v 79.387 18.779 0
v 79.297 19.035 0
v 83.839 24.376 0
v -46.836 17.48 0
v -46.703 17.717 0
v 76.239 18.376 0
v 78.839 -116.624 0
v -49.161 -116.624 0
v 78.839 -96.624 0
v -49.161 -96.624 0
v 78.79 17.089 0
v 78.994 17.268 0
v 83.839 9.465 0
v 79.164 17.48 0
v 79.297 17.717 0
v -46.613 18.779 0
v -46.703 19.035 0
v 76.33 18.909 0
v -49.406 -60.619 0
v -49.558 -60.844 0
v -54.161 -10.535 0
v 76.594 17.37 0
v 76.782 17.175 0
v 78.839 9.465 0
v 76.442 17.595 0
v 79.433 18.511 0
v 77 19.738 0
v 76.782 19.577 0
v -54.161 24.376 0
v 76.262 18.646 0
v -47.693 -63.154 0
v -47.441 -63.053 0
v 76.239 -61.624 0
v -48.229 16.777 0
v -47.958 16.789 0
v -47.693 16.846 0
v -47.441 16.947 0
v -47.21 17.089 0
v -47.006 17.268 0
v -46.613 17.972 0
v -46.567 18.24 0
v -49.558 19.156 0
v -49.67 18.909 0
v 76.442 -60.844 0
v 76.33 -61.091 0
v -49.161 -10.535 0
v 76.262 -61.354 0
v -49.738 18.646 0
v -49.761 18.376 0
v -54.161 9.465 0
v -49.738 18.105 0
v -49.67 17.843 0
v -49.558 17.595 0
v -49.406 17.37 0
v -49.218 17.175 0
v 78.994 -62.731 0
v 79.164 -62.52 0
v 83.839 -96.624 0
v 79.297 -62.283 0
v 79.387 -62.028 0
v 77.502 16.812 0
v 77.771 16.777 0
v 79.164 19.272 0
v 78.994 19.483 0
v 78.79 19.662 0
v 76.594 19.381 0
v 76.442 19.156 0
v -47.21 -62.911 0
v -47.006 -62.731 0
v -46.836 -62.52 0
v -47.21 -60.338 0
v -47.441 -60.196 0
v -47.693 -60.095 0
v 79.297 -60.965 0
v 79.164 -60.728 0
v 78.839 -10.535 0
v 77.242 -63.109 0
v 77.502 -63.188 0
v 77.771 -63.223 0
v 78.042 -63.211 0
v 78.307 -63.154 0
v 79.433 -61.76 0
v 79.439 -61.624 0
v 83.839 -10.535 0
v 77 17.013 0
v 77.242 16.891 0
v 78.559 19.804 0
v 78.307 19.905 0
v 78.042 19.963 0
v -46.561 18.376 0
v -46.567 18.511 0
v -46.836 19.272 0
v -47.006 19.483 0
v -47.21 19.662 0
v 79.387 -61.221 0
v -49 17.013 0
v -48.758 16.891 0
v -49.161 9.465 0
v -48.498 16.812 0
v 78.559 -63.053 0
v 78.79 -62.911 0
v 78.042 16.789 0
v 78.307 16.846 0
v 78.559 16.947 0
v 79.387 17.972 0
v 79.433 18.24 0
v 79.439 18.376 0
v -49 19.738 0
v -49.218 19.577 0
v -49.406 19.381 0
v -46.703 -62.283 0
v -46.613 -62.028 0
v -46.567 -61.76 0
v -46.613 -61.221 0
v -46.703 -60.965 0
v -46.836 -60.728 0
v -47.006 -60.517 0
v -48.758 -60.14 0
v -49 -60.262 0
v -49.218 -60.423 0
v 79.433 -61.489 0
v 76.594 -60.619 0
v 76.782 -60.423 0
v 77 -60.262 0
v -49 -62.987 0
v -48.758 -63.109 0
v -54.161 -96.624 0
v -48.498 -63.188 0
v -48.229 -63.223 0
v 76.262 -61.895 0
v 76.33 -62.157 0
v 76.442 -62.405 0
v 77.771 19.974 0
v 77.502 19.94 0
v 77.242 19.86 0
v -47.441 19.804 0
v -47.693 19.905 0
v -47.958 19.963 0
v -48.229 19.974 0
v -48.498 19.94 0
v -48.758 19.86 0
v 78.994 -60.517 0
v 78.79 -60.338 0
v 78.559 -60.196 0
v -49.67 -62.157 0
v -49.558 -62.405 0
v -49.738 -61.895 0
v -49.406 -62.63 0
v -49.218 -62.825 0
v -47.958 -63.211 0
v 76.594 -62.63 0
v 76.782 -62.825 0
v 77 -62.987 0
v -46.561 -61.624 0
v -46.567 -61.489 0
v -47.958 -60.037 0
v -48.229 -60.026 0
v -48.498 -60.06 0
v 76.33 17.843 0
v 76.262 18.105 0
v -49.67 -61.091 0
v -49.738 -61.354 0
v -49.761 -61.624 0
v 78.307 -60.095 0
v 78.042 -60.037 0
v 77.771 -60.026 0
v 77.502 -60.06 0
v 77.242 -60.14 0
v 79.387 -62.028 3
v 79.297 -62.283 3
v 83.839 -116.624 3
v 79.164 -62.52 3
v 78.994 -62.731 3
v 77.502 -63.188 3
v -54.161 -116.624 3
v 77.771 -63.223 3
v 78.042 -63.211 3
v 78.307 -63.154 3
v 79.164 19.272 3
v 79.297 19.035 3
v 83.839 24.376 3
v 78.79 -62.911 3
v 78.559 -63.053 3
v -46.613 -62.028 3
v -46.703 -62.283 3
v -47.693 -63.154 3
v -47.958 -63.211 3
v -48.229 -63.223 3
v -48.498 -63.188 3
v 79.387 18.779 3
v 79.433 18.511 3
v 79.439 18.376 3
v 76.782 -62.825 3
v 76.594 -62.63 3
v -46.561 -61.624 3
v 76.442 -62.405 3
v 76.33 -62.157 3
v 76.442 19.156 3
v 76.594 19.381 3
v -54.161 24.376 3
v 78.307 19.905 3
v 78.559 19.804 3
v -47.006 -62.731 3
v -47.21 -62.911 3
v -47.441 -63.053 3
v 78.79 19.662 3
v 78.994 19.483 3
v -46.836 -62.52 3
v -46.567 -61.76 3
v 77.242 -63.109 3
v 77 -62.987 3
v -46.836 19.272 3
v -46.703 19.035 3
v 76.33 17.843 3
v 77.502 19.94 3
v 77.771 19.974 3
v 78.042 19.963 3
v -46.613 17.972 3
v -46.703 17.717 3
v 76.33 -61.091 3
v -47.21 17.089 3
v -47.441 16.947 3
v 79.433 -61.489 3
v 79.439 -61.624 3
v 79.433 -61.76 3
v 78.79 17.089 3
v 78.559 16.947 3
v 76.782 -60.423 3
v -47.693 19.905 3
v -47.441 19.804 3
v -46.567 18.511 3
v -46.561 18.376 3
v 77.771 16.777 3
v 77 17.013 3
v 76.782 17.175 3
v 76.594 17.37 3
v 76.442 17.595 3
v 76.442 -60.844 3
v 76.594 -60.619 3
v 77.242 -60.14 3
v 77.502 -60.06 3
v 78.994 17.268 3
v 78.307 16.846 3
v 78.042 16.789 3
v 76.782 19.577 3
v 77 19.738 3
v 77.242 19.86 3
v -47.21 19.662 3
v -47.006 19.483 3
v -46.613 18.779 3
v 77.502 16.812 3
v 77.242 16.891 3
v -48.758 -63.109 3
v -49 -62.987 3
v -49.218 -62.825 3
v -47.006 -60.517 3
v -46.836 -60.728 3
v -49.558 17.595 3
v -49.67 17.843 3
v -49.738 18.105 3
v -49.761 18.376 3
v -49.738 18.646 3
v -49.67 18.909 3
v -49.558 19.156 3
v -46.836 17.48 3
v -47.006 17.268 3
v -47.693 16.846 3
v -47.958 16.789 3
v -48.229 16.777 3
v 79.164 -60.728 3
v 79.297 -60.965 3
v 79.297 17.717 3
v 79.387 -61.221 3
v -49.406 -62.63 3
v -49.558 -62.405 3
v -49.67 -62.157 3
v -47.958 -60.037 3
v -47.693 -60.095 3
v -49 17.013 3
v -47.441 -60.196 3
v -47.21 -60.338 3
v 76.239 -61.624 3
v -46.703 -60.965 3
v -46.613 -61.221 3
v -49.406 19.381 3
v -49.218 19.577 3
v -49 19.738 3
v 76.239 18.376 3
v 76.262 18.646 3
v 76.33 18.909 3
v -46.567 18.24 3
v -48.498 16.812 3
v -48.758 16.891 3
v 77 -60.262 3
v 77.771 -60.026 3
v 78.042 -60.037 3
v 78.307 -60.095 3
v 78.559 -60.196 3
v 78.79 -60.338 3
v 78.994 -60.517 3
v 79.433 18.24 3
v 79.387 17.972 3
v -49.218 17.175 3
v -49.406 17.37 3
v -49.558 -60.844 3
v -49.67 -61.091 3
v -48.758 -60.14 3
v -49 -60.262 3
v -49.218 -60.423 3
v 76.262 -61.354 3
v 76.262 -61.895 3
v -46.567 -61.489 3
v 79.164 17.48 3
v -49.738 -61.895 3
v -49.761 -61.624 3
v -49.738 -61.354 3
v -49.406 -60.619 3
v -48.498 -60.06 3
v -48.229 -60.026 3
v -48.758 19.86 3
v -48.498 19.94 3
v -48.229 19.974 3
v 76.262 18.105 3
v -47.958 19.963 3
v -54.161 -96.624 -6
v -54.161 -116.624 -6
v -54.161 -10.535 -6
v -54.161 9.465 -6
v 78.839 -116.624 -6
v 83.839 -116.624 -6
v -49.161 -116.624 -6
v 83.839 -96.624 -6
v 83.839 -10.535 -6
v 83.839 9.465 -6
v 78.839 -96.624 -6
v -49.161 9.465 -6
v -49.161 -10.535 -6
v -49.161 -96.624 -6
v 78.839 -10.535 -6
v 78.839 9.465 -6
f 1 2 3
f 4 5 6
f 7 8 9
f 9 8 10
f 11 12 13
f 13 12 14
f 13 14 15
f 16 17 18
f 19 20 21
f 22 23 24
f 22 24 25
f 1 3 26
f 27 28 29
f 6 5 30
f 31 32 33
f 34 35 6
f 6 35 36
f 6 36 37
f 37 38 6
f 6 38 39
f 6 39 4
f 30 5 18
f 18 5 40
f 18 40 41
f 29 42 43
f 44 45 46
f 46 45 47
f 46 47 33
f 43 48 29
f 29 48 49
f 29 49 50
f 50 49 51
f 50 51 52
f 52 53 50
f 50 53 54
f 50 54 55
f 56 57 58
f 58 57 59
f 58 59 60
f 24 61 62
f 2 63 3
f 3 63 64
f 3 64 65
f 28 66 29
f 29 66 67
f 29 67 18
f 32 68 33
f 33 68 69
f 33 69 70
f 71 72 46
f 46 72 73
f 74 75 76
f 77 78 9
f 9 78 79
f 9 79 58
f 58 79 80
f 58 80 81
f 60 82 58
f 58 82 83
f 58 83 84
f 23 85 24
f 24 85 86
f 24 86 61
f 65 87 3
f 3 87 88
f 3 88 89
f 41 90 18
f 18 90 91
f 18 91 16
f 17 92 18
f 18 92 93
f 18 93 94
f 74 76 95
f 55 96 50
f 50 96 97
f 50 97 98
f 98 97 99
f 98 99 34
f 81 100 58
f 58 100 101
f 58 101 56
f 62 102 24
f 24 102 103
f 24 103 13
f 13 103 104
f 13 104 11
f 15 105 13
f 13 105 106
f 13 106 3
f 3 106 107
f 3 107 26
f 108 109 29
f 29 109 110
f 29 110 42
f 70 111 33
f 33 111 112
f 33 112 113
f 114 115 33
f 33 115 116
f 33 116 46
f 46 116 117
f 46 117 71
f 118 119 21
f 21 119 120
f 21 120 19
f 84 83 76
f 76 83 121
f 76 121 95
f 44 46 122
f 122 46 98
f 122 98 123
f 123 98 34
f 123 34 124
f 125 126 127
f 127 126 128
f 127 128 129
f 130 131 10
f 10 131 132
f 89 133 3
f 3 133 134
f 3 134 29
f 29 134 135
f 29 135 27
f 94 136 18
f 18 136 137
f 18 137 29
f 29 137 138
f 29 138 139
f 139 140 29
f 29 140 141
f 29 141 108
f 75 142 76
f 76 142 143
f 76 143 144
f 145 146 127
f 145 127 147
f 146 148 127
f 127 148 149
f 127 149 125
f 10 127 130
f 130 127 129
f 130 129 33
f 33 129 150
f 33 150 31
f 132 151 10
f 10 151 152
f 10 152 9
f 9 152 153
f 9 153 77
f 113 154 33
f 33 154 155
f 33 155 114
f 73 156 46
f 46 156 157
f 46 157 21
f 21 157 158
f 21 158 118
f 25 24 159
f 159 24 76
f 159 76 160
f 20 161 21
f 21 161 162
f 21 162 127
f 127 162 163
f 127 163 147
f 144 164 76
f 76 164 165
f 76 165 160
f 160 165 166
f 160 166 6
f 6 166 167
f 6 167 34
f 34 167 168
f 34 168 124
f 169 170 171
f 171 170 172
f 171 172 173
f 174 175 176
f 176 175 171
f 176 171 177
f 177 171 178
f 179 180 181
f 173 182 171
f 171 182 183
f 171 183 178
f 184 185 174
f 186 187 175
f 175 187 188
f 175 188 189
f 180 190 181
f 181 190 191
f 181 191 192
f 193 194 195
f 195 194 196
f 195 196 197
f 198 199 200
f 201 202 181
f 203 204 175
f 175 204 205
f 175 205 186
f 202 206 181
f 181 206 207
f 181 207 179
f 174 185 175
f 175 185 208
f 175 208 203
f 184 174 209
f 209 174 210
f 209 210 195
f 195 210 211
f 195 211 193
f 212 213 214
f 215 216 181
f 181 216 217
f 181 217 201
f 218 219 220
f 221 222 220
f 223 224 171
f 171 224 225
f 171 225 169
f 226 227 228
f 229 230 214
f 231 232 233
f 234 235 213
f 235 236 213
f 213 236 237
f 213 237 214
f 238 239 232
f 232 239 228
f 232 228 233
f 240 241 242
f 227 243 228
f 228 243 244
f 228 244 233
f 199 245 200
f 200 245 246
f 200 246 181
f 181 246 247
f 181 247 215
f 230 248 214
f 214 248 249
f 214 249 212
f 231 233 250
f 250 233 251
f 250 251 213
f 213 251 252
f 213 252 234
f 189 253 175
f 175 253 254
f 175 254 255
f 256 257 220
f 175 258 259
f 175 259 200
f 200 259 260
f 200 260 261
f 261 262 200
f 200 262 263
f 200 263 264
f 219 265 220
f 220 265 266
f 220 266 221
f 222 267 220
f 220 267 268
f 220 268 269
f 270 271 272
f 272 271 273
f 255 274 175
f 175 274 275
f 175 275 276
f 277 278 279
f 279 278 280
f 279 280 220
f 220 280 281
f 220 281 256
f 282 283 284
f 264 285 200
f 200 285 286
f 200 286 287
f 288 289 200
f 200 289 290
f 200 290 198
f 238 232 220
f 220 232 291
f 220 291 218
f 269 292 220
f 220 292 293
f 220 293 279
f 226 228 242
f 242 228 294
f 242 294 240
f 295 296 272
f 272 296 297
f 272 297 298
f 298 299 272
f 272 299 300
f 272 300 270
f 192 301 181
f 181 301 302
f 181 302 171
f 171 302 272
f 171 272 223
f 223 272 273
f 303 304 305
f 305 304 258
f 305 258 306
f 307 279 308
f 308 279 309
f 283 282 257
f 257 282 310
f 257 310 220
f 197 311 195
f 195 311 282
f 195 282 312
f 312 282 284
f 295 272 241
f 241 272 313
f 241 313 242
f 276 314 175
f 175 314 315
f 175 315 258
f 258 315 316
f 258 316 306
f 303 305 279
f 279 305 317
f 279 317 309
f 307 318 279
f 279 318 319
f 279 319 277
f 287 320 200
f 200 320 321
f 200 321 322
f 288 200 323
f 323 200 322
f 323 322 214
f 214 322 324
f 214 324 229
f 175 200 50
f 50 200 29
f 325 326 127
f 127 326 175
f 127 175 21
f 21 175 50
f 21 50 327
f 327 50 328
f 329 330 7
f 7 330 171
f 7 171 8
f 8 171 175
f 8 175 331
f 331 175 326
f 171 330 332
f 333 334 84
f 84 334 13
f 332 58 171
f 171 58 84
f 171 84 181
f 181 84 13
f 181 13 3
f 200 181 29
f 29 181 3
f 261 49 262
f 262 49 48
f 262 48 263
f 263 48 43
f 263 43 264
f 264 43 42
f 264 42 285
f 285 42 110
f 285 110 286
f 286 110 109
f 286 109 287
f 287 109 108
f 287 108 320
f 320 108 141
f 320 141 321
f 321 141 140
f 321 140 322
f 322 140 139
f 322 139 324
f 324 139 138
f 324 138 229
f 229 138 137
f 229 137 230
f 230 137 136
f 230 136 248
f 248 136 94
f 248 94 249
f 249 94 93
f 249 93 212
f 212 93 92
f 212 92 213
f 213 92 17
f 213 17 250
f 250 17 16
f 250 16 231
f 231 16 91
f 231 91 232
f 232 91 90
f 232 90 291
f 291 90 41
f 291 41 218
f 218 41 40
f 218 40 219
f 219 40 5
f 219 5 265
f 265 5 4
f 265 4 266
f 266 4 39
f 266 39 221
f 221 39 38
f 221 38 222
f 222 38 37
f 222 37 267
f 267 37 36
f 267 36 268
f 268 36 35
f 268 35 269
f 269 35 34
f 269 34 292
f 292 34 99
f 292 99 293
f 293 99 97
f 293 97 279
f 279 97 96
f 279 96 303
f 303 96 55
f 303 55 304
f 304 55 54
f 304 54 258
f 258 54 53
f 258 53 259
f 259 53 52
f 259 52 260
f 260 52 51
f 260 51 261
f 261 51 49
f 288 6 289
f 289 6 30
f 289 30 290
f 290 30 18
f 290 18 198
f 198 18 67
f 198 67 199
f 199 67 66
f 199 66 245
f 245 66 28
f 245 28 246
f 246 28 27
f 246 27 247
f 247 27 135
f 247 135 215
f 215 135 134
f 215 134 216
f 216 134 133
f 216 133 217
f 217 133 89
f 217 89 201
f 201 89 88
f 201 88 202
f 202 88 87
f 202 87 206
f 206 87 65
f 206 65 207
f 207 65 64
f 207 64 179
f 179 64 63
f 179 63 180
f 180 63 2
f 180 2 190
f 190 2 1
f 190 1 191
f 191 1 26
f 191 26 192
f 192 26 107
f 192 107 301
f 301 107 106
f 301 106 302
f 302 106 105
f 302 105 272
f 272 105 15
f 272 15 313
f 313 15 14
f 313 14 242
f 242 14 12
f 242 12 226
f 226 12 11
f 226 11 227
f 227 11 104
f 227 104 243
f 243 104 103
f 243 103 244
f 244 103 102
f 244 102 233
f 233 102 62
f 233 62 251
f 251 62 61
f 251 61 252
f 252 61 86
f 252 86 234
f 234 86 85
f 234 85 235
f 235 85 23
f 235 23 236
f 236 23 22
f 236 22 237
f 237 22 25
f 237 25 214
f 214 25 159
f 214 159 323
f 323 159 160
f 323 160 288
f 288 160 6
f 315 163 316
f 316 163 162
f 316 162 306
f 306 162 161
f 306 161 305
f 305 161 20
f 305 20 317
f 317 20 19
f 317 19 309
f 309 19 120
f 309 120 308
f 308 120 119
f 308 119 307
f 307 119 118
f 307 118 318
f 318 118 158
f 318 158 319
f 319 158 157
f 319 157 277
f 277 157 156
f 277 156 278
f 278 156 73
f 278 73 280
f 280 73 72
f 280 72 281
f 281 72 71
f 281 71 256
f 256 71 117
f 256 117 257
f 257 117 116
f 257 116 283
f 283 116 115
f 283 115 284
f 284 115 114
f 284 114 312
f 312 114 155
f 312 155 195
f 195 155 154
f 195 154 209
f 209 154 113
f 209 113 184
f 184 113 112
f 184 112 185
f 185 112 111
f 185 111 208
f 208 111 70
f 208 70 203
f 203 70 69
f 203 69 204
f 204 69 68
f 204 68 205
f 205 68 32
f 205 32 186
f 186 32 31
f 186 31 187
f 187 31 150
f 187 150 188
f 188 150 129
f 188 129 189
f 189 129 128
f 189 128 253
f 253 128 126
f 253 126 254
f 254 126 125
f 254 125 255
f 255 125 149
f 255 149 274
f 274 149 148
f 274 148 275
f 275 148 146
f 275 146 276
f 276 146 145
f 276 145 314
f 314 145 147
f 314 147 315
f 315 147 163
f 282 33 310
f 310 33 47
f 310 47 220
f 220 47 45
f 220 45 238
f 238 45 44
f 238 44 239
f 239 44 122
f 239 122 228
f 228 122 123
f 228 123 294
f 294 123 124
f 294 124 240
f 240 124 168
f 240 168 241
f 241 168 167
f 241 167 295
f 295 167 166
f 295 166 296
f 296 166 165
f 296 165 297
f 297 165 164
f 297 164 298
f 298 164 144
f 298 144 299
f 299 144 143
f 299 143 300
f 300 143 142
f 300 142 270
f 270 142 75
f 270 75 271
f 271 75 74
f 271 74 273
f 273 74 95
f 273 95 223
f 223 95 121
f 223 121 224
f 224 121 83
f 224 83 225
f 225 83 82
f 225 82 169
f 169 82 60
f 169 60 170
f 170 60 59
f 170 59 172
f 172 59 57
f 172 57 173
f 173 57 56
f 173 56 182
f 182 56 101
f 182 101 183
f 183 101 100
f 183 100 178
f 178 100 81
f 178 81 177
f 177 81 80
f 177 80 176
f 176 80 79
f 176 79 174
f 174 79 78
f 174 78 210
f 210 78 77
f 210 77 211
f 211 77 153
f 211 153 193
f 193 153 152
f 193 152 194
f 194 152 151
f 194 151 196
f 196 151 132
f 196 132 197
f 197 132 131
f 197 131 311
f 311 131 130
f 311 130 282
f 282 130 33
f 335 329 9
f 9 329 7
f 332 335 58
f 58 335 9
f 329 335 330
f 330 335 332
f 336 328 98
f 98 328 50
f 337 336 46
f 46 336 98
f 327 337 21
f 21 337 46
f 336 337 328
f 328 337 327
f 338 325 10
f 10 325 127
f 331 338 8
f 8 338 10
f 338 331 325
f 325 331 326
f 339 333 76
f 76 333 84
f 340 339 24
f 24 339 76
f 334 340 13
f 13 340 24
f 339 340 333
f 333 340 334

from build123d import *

# Parameters (mm, degrees)
SKETCH_1_W      = 138
SKETCH_1_H      = 141
SKETCH_1_R      = 1.6
EXTRUDE_1_DEPTH = 3
SKETCH_2_W      = 5
SKETCH_2_H      = 20
EXTRUDE_2_DEPTH = 6


with BuildPart() as part:
    # 草图1 → 凸台-拉伸1 (new body)
    with BuildSketch(Plane.XY):
        with Locations((14.838842975, -46.124397743)):
            Rectangle(SKETCH_1_W, SKETCH_1_H)
        with Locations((-48.161157025, 18.375602257)):
            Circle(SKETCH_1_R, mode=Mode.SUBTRACT)
        with Locations((77.838842975, 18.375602257)):
            Circle(SKETCH_1_R, mode=Mode.SUBTRACT)
        with Locations((-48.161157025, -61.624397743)):
            Circle(SKETCH_1_R, mode=Mode.SUBTRACT)
        with Locations((77.838842975, -61.624397743)):
            Circle(SKETCH_1_R, mode=Mode.SUBTRACT)
    extrude(amount=EXTRUDE_1_DEPTH)

    # 草图2 → 凸台-拉伸2 (add)
    with BuildSketch(Plane(origin=(0, 0, 0), x_dir=(-1, 0, 0), z_dir=(0, 0, -1))):
        with Locations((-81.338842975, -106.624397743)):
            Rectangle(SKETCH_2_W, SKETCH_2_H)
        with Locations((-81.338842975, -0.534764205)):
            Rectangle(SKETCH_2_W, SKETCH_2_H)
        with Locations((51.661157025, -106.624397743)):
            Rectangle(SKETCH_2_W, SKETCH_2_H)
        with Locations((51.661157025, -0.534764205)):
            Rectangle(SKETCH_2_W, SKETCH_2_H)
    extrude(amount=EXTRUDE_2_DEPTH)


solid = part.part
